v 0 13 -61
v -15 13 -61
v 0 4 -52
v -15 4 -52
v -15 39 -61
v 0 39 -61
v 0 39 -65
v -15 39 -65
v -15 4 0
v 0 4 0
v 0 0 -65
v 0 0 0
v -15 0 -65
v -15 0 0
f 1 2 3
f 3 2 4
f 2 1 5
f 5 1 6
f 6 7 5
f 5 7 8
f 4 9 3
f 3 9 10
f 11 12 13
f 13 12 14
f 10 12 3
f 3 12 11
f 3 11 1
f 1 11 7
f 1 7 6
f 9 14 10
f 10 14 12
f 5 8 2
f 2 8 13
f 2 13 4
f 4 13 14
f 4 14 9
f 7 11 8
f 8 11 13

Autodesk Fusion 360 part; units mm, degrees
box "BoxPrimitive1" add length 65 width 15 height 4 placed x (0, 0, -1) y (-1, 0, 0) z (0, 1, 0) at (0, 0, 0)
sketch "Sketch2" plane through (0, 4, 0) normal (0, 1, 0) x (-1, 0, 0)
  line L0 (0, -65) -> (15, -65)
  line L1 (15, -65) -> (15, 0)
  line L2 (15, 0) -> (0, 0)
  line L3 (0, 0) -> (0, -65)
  line L4 (15, -65) -> (0, -65)
  line L5 (0, -65) -> (0, -61)
  line L6 (0, -61) -> (15, -61)
  line L7 (15, -61) -> (15, -65)
  dimension "d6" = 4
extrude "Extrude1" add sketch "Sketch2" along normal blind 35 contours L0 L1 L3 L4 L5 L6 L7
chamfer "Chamfer1" distance 9 angle 45 1 edges at (-7.5, 4, -61)
